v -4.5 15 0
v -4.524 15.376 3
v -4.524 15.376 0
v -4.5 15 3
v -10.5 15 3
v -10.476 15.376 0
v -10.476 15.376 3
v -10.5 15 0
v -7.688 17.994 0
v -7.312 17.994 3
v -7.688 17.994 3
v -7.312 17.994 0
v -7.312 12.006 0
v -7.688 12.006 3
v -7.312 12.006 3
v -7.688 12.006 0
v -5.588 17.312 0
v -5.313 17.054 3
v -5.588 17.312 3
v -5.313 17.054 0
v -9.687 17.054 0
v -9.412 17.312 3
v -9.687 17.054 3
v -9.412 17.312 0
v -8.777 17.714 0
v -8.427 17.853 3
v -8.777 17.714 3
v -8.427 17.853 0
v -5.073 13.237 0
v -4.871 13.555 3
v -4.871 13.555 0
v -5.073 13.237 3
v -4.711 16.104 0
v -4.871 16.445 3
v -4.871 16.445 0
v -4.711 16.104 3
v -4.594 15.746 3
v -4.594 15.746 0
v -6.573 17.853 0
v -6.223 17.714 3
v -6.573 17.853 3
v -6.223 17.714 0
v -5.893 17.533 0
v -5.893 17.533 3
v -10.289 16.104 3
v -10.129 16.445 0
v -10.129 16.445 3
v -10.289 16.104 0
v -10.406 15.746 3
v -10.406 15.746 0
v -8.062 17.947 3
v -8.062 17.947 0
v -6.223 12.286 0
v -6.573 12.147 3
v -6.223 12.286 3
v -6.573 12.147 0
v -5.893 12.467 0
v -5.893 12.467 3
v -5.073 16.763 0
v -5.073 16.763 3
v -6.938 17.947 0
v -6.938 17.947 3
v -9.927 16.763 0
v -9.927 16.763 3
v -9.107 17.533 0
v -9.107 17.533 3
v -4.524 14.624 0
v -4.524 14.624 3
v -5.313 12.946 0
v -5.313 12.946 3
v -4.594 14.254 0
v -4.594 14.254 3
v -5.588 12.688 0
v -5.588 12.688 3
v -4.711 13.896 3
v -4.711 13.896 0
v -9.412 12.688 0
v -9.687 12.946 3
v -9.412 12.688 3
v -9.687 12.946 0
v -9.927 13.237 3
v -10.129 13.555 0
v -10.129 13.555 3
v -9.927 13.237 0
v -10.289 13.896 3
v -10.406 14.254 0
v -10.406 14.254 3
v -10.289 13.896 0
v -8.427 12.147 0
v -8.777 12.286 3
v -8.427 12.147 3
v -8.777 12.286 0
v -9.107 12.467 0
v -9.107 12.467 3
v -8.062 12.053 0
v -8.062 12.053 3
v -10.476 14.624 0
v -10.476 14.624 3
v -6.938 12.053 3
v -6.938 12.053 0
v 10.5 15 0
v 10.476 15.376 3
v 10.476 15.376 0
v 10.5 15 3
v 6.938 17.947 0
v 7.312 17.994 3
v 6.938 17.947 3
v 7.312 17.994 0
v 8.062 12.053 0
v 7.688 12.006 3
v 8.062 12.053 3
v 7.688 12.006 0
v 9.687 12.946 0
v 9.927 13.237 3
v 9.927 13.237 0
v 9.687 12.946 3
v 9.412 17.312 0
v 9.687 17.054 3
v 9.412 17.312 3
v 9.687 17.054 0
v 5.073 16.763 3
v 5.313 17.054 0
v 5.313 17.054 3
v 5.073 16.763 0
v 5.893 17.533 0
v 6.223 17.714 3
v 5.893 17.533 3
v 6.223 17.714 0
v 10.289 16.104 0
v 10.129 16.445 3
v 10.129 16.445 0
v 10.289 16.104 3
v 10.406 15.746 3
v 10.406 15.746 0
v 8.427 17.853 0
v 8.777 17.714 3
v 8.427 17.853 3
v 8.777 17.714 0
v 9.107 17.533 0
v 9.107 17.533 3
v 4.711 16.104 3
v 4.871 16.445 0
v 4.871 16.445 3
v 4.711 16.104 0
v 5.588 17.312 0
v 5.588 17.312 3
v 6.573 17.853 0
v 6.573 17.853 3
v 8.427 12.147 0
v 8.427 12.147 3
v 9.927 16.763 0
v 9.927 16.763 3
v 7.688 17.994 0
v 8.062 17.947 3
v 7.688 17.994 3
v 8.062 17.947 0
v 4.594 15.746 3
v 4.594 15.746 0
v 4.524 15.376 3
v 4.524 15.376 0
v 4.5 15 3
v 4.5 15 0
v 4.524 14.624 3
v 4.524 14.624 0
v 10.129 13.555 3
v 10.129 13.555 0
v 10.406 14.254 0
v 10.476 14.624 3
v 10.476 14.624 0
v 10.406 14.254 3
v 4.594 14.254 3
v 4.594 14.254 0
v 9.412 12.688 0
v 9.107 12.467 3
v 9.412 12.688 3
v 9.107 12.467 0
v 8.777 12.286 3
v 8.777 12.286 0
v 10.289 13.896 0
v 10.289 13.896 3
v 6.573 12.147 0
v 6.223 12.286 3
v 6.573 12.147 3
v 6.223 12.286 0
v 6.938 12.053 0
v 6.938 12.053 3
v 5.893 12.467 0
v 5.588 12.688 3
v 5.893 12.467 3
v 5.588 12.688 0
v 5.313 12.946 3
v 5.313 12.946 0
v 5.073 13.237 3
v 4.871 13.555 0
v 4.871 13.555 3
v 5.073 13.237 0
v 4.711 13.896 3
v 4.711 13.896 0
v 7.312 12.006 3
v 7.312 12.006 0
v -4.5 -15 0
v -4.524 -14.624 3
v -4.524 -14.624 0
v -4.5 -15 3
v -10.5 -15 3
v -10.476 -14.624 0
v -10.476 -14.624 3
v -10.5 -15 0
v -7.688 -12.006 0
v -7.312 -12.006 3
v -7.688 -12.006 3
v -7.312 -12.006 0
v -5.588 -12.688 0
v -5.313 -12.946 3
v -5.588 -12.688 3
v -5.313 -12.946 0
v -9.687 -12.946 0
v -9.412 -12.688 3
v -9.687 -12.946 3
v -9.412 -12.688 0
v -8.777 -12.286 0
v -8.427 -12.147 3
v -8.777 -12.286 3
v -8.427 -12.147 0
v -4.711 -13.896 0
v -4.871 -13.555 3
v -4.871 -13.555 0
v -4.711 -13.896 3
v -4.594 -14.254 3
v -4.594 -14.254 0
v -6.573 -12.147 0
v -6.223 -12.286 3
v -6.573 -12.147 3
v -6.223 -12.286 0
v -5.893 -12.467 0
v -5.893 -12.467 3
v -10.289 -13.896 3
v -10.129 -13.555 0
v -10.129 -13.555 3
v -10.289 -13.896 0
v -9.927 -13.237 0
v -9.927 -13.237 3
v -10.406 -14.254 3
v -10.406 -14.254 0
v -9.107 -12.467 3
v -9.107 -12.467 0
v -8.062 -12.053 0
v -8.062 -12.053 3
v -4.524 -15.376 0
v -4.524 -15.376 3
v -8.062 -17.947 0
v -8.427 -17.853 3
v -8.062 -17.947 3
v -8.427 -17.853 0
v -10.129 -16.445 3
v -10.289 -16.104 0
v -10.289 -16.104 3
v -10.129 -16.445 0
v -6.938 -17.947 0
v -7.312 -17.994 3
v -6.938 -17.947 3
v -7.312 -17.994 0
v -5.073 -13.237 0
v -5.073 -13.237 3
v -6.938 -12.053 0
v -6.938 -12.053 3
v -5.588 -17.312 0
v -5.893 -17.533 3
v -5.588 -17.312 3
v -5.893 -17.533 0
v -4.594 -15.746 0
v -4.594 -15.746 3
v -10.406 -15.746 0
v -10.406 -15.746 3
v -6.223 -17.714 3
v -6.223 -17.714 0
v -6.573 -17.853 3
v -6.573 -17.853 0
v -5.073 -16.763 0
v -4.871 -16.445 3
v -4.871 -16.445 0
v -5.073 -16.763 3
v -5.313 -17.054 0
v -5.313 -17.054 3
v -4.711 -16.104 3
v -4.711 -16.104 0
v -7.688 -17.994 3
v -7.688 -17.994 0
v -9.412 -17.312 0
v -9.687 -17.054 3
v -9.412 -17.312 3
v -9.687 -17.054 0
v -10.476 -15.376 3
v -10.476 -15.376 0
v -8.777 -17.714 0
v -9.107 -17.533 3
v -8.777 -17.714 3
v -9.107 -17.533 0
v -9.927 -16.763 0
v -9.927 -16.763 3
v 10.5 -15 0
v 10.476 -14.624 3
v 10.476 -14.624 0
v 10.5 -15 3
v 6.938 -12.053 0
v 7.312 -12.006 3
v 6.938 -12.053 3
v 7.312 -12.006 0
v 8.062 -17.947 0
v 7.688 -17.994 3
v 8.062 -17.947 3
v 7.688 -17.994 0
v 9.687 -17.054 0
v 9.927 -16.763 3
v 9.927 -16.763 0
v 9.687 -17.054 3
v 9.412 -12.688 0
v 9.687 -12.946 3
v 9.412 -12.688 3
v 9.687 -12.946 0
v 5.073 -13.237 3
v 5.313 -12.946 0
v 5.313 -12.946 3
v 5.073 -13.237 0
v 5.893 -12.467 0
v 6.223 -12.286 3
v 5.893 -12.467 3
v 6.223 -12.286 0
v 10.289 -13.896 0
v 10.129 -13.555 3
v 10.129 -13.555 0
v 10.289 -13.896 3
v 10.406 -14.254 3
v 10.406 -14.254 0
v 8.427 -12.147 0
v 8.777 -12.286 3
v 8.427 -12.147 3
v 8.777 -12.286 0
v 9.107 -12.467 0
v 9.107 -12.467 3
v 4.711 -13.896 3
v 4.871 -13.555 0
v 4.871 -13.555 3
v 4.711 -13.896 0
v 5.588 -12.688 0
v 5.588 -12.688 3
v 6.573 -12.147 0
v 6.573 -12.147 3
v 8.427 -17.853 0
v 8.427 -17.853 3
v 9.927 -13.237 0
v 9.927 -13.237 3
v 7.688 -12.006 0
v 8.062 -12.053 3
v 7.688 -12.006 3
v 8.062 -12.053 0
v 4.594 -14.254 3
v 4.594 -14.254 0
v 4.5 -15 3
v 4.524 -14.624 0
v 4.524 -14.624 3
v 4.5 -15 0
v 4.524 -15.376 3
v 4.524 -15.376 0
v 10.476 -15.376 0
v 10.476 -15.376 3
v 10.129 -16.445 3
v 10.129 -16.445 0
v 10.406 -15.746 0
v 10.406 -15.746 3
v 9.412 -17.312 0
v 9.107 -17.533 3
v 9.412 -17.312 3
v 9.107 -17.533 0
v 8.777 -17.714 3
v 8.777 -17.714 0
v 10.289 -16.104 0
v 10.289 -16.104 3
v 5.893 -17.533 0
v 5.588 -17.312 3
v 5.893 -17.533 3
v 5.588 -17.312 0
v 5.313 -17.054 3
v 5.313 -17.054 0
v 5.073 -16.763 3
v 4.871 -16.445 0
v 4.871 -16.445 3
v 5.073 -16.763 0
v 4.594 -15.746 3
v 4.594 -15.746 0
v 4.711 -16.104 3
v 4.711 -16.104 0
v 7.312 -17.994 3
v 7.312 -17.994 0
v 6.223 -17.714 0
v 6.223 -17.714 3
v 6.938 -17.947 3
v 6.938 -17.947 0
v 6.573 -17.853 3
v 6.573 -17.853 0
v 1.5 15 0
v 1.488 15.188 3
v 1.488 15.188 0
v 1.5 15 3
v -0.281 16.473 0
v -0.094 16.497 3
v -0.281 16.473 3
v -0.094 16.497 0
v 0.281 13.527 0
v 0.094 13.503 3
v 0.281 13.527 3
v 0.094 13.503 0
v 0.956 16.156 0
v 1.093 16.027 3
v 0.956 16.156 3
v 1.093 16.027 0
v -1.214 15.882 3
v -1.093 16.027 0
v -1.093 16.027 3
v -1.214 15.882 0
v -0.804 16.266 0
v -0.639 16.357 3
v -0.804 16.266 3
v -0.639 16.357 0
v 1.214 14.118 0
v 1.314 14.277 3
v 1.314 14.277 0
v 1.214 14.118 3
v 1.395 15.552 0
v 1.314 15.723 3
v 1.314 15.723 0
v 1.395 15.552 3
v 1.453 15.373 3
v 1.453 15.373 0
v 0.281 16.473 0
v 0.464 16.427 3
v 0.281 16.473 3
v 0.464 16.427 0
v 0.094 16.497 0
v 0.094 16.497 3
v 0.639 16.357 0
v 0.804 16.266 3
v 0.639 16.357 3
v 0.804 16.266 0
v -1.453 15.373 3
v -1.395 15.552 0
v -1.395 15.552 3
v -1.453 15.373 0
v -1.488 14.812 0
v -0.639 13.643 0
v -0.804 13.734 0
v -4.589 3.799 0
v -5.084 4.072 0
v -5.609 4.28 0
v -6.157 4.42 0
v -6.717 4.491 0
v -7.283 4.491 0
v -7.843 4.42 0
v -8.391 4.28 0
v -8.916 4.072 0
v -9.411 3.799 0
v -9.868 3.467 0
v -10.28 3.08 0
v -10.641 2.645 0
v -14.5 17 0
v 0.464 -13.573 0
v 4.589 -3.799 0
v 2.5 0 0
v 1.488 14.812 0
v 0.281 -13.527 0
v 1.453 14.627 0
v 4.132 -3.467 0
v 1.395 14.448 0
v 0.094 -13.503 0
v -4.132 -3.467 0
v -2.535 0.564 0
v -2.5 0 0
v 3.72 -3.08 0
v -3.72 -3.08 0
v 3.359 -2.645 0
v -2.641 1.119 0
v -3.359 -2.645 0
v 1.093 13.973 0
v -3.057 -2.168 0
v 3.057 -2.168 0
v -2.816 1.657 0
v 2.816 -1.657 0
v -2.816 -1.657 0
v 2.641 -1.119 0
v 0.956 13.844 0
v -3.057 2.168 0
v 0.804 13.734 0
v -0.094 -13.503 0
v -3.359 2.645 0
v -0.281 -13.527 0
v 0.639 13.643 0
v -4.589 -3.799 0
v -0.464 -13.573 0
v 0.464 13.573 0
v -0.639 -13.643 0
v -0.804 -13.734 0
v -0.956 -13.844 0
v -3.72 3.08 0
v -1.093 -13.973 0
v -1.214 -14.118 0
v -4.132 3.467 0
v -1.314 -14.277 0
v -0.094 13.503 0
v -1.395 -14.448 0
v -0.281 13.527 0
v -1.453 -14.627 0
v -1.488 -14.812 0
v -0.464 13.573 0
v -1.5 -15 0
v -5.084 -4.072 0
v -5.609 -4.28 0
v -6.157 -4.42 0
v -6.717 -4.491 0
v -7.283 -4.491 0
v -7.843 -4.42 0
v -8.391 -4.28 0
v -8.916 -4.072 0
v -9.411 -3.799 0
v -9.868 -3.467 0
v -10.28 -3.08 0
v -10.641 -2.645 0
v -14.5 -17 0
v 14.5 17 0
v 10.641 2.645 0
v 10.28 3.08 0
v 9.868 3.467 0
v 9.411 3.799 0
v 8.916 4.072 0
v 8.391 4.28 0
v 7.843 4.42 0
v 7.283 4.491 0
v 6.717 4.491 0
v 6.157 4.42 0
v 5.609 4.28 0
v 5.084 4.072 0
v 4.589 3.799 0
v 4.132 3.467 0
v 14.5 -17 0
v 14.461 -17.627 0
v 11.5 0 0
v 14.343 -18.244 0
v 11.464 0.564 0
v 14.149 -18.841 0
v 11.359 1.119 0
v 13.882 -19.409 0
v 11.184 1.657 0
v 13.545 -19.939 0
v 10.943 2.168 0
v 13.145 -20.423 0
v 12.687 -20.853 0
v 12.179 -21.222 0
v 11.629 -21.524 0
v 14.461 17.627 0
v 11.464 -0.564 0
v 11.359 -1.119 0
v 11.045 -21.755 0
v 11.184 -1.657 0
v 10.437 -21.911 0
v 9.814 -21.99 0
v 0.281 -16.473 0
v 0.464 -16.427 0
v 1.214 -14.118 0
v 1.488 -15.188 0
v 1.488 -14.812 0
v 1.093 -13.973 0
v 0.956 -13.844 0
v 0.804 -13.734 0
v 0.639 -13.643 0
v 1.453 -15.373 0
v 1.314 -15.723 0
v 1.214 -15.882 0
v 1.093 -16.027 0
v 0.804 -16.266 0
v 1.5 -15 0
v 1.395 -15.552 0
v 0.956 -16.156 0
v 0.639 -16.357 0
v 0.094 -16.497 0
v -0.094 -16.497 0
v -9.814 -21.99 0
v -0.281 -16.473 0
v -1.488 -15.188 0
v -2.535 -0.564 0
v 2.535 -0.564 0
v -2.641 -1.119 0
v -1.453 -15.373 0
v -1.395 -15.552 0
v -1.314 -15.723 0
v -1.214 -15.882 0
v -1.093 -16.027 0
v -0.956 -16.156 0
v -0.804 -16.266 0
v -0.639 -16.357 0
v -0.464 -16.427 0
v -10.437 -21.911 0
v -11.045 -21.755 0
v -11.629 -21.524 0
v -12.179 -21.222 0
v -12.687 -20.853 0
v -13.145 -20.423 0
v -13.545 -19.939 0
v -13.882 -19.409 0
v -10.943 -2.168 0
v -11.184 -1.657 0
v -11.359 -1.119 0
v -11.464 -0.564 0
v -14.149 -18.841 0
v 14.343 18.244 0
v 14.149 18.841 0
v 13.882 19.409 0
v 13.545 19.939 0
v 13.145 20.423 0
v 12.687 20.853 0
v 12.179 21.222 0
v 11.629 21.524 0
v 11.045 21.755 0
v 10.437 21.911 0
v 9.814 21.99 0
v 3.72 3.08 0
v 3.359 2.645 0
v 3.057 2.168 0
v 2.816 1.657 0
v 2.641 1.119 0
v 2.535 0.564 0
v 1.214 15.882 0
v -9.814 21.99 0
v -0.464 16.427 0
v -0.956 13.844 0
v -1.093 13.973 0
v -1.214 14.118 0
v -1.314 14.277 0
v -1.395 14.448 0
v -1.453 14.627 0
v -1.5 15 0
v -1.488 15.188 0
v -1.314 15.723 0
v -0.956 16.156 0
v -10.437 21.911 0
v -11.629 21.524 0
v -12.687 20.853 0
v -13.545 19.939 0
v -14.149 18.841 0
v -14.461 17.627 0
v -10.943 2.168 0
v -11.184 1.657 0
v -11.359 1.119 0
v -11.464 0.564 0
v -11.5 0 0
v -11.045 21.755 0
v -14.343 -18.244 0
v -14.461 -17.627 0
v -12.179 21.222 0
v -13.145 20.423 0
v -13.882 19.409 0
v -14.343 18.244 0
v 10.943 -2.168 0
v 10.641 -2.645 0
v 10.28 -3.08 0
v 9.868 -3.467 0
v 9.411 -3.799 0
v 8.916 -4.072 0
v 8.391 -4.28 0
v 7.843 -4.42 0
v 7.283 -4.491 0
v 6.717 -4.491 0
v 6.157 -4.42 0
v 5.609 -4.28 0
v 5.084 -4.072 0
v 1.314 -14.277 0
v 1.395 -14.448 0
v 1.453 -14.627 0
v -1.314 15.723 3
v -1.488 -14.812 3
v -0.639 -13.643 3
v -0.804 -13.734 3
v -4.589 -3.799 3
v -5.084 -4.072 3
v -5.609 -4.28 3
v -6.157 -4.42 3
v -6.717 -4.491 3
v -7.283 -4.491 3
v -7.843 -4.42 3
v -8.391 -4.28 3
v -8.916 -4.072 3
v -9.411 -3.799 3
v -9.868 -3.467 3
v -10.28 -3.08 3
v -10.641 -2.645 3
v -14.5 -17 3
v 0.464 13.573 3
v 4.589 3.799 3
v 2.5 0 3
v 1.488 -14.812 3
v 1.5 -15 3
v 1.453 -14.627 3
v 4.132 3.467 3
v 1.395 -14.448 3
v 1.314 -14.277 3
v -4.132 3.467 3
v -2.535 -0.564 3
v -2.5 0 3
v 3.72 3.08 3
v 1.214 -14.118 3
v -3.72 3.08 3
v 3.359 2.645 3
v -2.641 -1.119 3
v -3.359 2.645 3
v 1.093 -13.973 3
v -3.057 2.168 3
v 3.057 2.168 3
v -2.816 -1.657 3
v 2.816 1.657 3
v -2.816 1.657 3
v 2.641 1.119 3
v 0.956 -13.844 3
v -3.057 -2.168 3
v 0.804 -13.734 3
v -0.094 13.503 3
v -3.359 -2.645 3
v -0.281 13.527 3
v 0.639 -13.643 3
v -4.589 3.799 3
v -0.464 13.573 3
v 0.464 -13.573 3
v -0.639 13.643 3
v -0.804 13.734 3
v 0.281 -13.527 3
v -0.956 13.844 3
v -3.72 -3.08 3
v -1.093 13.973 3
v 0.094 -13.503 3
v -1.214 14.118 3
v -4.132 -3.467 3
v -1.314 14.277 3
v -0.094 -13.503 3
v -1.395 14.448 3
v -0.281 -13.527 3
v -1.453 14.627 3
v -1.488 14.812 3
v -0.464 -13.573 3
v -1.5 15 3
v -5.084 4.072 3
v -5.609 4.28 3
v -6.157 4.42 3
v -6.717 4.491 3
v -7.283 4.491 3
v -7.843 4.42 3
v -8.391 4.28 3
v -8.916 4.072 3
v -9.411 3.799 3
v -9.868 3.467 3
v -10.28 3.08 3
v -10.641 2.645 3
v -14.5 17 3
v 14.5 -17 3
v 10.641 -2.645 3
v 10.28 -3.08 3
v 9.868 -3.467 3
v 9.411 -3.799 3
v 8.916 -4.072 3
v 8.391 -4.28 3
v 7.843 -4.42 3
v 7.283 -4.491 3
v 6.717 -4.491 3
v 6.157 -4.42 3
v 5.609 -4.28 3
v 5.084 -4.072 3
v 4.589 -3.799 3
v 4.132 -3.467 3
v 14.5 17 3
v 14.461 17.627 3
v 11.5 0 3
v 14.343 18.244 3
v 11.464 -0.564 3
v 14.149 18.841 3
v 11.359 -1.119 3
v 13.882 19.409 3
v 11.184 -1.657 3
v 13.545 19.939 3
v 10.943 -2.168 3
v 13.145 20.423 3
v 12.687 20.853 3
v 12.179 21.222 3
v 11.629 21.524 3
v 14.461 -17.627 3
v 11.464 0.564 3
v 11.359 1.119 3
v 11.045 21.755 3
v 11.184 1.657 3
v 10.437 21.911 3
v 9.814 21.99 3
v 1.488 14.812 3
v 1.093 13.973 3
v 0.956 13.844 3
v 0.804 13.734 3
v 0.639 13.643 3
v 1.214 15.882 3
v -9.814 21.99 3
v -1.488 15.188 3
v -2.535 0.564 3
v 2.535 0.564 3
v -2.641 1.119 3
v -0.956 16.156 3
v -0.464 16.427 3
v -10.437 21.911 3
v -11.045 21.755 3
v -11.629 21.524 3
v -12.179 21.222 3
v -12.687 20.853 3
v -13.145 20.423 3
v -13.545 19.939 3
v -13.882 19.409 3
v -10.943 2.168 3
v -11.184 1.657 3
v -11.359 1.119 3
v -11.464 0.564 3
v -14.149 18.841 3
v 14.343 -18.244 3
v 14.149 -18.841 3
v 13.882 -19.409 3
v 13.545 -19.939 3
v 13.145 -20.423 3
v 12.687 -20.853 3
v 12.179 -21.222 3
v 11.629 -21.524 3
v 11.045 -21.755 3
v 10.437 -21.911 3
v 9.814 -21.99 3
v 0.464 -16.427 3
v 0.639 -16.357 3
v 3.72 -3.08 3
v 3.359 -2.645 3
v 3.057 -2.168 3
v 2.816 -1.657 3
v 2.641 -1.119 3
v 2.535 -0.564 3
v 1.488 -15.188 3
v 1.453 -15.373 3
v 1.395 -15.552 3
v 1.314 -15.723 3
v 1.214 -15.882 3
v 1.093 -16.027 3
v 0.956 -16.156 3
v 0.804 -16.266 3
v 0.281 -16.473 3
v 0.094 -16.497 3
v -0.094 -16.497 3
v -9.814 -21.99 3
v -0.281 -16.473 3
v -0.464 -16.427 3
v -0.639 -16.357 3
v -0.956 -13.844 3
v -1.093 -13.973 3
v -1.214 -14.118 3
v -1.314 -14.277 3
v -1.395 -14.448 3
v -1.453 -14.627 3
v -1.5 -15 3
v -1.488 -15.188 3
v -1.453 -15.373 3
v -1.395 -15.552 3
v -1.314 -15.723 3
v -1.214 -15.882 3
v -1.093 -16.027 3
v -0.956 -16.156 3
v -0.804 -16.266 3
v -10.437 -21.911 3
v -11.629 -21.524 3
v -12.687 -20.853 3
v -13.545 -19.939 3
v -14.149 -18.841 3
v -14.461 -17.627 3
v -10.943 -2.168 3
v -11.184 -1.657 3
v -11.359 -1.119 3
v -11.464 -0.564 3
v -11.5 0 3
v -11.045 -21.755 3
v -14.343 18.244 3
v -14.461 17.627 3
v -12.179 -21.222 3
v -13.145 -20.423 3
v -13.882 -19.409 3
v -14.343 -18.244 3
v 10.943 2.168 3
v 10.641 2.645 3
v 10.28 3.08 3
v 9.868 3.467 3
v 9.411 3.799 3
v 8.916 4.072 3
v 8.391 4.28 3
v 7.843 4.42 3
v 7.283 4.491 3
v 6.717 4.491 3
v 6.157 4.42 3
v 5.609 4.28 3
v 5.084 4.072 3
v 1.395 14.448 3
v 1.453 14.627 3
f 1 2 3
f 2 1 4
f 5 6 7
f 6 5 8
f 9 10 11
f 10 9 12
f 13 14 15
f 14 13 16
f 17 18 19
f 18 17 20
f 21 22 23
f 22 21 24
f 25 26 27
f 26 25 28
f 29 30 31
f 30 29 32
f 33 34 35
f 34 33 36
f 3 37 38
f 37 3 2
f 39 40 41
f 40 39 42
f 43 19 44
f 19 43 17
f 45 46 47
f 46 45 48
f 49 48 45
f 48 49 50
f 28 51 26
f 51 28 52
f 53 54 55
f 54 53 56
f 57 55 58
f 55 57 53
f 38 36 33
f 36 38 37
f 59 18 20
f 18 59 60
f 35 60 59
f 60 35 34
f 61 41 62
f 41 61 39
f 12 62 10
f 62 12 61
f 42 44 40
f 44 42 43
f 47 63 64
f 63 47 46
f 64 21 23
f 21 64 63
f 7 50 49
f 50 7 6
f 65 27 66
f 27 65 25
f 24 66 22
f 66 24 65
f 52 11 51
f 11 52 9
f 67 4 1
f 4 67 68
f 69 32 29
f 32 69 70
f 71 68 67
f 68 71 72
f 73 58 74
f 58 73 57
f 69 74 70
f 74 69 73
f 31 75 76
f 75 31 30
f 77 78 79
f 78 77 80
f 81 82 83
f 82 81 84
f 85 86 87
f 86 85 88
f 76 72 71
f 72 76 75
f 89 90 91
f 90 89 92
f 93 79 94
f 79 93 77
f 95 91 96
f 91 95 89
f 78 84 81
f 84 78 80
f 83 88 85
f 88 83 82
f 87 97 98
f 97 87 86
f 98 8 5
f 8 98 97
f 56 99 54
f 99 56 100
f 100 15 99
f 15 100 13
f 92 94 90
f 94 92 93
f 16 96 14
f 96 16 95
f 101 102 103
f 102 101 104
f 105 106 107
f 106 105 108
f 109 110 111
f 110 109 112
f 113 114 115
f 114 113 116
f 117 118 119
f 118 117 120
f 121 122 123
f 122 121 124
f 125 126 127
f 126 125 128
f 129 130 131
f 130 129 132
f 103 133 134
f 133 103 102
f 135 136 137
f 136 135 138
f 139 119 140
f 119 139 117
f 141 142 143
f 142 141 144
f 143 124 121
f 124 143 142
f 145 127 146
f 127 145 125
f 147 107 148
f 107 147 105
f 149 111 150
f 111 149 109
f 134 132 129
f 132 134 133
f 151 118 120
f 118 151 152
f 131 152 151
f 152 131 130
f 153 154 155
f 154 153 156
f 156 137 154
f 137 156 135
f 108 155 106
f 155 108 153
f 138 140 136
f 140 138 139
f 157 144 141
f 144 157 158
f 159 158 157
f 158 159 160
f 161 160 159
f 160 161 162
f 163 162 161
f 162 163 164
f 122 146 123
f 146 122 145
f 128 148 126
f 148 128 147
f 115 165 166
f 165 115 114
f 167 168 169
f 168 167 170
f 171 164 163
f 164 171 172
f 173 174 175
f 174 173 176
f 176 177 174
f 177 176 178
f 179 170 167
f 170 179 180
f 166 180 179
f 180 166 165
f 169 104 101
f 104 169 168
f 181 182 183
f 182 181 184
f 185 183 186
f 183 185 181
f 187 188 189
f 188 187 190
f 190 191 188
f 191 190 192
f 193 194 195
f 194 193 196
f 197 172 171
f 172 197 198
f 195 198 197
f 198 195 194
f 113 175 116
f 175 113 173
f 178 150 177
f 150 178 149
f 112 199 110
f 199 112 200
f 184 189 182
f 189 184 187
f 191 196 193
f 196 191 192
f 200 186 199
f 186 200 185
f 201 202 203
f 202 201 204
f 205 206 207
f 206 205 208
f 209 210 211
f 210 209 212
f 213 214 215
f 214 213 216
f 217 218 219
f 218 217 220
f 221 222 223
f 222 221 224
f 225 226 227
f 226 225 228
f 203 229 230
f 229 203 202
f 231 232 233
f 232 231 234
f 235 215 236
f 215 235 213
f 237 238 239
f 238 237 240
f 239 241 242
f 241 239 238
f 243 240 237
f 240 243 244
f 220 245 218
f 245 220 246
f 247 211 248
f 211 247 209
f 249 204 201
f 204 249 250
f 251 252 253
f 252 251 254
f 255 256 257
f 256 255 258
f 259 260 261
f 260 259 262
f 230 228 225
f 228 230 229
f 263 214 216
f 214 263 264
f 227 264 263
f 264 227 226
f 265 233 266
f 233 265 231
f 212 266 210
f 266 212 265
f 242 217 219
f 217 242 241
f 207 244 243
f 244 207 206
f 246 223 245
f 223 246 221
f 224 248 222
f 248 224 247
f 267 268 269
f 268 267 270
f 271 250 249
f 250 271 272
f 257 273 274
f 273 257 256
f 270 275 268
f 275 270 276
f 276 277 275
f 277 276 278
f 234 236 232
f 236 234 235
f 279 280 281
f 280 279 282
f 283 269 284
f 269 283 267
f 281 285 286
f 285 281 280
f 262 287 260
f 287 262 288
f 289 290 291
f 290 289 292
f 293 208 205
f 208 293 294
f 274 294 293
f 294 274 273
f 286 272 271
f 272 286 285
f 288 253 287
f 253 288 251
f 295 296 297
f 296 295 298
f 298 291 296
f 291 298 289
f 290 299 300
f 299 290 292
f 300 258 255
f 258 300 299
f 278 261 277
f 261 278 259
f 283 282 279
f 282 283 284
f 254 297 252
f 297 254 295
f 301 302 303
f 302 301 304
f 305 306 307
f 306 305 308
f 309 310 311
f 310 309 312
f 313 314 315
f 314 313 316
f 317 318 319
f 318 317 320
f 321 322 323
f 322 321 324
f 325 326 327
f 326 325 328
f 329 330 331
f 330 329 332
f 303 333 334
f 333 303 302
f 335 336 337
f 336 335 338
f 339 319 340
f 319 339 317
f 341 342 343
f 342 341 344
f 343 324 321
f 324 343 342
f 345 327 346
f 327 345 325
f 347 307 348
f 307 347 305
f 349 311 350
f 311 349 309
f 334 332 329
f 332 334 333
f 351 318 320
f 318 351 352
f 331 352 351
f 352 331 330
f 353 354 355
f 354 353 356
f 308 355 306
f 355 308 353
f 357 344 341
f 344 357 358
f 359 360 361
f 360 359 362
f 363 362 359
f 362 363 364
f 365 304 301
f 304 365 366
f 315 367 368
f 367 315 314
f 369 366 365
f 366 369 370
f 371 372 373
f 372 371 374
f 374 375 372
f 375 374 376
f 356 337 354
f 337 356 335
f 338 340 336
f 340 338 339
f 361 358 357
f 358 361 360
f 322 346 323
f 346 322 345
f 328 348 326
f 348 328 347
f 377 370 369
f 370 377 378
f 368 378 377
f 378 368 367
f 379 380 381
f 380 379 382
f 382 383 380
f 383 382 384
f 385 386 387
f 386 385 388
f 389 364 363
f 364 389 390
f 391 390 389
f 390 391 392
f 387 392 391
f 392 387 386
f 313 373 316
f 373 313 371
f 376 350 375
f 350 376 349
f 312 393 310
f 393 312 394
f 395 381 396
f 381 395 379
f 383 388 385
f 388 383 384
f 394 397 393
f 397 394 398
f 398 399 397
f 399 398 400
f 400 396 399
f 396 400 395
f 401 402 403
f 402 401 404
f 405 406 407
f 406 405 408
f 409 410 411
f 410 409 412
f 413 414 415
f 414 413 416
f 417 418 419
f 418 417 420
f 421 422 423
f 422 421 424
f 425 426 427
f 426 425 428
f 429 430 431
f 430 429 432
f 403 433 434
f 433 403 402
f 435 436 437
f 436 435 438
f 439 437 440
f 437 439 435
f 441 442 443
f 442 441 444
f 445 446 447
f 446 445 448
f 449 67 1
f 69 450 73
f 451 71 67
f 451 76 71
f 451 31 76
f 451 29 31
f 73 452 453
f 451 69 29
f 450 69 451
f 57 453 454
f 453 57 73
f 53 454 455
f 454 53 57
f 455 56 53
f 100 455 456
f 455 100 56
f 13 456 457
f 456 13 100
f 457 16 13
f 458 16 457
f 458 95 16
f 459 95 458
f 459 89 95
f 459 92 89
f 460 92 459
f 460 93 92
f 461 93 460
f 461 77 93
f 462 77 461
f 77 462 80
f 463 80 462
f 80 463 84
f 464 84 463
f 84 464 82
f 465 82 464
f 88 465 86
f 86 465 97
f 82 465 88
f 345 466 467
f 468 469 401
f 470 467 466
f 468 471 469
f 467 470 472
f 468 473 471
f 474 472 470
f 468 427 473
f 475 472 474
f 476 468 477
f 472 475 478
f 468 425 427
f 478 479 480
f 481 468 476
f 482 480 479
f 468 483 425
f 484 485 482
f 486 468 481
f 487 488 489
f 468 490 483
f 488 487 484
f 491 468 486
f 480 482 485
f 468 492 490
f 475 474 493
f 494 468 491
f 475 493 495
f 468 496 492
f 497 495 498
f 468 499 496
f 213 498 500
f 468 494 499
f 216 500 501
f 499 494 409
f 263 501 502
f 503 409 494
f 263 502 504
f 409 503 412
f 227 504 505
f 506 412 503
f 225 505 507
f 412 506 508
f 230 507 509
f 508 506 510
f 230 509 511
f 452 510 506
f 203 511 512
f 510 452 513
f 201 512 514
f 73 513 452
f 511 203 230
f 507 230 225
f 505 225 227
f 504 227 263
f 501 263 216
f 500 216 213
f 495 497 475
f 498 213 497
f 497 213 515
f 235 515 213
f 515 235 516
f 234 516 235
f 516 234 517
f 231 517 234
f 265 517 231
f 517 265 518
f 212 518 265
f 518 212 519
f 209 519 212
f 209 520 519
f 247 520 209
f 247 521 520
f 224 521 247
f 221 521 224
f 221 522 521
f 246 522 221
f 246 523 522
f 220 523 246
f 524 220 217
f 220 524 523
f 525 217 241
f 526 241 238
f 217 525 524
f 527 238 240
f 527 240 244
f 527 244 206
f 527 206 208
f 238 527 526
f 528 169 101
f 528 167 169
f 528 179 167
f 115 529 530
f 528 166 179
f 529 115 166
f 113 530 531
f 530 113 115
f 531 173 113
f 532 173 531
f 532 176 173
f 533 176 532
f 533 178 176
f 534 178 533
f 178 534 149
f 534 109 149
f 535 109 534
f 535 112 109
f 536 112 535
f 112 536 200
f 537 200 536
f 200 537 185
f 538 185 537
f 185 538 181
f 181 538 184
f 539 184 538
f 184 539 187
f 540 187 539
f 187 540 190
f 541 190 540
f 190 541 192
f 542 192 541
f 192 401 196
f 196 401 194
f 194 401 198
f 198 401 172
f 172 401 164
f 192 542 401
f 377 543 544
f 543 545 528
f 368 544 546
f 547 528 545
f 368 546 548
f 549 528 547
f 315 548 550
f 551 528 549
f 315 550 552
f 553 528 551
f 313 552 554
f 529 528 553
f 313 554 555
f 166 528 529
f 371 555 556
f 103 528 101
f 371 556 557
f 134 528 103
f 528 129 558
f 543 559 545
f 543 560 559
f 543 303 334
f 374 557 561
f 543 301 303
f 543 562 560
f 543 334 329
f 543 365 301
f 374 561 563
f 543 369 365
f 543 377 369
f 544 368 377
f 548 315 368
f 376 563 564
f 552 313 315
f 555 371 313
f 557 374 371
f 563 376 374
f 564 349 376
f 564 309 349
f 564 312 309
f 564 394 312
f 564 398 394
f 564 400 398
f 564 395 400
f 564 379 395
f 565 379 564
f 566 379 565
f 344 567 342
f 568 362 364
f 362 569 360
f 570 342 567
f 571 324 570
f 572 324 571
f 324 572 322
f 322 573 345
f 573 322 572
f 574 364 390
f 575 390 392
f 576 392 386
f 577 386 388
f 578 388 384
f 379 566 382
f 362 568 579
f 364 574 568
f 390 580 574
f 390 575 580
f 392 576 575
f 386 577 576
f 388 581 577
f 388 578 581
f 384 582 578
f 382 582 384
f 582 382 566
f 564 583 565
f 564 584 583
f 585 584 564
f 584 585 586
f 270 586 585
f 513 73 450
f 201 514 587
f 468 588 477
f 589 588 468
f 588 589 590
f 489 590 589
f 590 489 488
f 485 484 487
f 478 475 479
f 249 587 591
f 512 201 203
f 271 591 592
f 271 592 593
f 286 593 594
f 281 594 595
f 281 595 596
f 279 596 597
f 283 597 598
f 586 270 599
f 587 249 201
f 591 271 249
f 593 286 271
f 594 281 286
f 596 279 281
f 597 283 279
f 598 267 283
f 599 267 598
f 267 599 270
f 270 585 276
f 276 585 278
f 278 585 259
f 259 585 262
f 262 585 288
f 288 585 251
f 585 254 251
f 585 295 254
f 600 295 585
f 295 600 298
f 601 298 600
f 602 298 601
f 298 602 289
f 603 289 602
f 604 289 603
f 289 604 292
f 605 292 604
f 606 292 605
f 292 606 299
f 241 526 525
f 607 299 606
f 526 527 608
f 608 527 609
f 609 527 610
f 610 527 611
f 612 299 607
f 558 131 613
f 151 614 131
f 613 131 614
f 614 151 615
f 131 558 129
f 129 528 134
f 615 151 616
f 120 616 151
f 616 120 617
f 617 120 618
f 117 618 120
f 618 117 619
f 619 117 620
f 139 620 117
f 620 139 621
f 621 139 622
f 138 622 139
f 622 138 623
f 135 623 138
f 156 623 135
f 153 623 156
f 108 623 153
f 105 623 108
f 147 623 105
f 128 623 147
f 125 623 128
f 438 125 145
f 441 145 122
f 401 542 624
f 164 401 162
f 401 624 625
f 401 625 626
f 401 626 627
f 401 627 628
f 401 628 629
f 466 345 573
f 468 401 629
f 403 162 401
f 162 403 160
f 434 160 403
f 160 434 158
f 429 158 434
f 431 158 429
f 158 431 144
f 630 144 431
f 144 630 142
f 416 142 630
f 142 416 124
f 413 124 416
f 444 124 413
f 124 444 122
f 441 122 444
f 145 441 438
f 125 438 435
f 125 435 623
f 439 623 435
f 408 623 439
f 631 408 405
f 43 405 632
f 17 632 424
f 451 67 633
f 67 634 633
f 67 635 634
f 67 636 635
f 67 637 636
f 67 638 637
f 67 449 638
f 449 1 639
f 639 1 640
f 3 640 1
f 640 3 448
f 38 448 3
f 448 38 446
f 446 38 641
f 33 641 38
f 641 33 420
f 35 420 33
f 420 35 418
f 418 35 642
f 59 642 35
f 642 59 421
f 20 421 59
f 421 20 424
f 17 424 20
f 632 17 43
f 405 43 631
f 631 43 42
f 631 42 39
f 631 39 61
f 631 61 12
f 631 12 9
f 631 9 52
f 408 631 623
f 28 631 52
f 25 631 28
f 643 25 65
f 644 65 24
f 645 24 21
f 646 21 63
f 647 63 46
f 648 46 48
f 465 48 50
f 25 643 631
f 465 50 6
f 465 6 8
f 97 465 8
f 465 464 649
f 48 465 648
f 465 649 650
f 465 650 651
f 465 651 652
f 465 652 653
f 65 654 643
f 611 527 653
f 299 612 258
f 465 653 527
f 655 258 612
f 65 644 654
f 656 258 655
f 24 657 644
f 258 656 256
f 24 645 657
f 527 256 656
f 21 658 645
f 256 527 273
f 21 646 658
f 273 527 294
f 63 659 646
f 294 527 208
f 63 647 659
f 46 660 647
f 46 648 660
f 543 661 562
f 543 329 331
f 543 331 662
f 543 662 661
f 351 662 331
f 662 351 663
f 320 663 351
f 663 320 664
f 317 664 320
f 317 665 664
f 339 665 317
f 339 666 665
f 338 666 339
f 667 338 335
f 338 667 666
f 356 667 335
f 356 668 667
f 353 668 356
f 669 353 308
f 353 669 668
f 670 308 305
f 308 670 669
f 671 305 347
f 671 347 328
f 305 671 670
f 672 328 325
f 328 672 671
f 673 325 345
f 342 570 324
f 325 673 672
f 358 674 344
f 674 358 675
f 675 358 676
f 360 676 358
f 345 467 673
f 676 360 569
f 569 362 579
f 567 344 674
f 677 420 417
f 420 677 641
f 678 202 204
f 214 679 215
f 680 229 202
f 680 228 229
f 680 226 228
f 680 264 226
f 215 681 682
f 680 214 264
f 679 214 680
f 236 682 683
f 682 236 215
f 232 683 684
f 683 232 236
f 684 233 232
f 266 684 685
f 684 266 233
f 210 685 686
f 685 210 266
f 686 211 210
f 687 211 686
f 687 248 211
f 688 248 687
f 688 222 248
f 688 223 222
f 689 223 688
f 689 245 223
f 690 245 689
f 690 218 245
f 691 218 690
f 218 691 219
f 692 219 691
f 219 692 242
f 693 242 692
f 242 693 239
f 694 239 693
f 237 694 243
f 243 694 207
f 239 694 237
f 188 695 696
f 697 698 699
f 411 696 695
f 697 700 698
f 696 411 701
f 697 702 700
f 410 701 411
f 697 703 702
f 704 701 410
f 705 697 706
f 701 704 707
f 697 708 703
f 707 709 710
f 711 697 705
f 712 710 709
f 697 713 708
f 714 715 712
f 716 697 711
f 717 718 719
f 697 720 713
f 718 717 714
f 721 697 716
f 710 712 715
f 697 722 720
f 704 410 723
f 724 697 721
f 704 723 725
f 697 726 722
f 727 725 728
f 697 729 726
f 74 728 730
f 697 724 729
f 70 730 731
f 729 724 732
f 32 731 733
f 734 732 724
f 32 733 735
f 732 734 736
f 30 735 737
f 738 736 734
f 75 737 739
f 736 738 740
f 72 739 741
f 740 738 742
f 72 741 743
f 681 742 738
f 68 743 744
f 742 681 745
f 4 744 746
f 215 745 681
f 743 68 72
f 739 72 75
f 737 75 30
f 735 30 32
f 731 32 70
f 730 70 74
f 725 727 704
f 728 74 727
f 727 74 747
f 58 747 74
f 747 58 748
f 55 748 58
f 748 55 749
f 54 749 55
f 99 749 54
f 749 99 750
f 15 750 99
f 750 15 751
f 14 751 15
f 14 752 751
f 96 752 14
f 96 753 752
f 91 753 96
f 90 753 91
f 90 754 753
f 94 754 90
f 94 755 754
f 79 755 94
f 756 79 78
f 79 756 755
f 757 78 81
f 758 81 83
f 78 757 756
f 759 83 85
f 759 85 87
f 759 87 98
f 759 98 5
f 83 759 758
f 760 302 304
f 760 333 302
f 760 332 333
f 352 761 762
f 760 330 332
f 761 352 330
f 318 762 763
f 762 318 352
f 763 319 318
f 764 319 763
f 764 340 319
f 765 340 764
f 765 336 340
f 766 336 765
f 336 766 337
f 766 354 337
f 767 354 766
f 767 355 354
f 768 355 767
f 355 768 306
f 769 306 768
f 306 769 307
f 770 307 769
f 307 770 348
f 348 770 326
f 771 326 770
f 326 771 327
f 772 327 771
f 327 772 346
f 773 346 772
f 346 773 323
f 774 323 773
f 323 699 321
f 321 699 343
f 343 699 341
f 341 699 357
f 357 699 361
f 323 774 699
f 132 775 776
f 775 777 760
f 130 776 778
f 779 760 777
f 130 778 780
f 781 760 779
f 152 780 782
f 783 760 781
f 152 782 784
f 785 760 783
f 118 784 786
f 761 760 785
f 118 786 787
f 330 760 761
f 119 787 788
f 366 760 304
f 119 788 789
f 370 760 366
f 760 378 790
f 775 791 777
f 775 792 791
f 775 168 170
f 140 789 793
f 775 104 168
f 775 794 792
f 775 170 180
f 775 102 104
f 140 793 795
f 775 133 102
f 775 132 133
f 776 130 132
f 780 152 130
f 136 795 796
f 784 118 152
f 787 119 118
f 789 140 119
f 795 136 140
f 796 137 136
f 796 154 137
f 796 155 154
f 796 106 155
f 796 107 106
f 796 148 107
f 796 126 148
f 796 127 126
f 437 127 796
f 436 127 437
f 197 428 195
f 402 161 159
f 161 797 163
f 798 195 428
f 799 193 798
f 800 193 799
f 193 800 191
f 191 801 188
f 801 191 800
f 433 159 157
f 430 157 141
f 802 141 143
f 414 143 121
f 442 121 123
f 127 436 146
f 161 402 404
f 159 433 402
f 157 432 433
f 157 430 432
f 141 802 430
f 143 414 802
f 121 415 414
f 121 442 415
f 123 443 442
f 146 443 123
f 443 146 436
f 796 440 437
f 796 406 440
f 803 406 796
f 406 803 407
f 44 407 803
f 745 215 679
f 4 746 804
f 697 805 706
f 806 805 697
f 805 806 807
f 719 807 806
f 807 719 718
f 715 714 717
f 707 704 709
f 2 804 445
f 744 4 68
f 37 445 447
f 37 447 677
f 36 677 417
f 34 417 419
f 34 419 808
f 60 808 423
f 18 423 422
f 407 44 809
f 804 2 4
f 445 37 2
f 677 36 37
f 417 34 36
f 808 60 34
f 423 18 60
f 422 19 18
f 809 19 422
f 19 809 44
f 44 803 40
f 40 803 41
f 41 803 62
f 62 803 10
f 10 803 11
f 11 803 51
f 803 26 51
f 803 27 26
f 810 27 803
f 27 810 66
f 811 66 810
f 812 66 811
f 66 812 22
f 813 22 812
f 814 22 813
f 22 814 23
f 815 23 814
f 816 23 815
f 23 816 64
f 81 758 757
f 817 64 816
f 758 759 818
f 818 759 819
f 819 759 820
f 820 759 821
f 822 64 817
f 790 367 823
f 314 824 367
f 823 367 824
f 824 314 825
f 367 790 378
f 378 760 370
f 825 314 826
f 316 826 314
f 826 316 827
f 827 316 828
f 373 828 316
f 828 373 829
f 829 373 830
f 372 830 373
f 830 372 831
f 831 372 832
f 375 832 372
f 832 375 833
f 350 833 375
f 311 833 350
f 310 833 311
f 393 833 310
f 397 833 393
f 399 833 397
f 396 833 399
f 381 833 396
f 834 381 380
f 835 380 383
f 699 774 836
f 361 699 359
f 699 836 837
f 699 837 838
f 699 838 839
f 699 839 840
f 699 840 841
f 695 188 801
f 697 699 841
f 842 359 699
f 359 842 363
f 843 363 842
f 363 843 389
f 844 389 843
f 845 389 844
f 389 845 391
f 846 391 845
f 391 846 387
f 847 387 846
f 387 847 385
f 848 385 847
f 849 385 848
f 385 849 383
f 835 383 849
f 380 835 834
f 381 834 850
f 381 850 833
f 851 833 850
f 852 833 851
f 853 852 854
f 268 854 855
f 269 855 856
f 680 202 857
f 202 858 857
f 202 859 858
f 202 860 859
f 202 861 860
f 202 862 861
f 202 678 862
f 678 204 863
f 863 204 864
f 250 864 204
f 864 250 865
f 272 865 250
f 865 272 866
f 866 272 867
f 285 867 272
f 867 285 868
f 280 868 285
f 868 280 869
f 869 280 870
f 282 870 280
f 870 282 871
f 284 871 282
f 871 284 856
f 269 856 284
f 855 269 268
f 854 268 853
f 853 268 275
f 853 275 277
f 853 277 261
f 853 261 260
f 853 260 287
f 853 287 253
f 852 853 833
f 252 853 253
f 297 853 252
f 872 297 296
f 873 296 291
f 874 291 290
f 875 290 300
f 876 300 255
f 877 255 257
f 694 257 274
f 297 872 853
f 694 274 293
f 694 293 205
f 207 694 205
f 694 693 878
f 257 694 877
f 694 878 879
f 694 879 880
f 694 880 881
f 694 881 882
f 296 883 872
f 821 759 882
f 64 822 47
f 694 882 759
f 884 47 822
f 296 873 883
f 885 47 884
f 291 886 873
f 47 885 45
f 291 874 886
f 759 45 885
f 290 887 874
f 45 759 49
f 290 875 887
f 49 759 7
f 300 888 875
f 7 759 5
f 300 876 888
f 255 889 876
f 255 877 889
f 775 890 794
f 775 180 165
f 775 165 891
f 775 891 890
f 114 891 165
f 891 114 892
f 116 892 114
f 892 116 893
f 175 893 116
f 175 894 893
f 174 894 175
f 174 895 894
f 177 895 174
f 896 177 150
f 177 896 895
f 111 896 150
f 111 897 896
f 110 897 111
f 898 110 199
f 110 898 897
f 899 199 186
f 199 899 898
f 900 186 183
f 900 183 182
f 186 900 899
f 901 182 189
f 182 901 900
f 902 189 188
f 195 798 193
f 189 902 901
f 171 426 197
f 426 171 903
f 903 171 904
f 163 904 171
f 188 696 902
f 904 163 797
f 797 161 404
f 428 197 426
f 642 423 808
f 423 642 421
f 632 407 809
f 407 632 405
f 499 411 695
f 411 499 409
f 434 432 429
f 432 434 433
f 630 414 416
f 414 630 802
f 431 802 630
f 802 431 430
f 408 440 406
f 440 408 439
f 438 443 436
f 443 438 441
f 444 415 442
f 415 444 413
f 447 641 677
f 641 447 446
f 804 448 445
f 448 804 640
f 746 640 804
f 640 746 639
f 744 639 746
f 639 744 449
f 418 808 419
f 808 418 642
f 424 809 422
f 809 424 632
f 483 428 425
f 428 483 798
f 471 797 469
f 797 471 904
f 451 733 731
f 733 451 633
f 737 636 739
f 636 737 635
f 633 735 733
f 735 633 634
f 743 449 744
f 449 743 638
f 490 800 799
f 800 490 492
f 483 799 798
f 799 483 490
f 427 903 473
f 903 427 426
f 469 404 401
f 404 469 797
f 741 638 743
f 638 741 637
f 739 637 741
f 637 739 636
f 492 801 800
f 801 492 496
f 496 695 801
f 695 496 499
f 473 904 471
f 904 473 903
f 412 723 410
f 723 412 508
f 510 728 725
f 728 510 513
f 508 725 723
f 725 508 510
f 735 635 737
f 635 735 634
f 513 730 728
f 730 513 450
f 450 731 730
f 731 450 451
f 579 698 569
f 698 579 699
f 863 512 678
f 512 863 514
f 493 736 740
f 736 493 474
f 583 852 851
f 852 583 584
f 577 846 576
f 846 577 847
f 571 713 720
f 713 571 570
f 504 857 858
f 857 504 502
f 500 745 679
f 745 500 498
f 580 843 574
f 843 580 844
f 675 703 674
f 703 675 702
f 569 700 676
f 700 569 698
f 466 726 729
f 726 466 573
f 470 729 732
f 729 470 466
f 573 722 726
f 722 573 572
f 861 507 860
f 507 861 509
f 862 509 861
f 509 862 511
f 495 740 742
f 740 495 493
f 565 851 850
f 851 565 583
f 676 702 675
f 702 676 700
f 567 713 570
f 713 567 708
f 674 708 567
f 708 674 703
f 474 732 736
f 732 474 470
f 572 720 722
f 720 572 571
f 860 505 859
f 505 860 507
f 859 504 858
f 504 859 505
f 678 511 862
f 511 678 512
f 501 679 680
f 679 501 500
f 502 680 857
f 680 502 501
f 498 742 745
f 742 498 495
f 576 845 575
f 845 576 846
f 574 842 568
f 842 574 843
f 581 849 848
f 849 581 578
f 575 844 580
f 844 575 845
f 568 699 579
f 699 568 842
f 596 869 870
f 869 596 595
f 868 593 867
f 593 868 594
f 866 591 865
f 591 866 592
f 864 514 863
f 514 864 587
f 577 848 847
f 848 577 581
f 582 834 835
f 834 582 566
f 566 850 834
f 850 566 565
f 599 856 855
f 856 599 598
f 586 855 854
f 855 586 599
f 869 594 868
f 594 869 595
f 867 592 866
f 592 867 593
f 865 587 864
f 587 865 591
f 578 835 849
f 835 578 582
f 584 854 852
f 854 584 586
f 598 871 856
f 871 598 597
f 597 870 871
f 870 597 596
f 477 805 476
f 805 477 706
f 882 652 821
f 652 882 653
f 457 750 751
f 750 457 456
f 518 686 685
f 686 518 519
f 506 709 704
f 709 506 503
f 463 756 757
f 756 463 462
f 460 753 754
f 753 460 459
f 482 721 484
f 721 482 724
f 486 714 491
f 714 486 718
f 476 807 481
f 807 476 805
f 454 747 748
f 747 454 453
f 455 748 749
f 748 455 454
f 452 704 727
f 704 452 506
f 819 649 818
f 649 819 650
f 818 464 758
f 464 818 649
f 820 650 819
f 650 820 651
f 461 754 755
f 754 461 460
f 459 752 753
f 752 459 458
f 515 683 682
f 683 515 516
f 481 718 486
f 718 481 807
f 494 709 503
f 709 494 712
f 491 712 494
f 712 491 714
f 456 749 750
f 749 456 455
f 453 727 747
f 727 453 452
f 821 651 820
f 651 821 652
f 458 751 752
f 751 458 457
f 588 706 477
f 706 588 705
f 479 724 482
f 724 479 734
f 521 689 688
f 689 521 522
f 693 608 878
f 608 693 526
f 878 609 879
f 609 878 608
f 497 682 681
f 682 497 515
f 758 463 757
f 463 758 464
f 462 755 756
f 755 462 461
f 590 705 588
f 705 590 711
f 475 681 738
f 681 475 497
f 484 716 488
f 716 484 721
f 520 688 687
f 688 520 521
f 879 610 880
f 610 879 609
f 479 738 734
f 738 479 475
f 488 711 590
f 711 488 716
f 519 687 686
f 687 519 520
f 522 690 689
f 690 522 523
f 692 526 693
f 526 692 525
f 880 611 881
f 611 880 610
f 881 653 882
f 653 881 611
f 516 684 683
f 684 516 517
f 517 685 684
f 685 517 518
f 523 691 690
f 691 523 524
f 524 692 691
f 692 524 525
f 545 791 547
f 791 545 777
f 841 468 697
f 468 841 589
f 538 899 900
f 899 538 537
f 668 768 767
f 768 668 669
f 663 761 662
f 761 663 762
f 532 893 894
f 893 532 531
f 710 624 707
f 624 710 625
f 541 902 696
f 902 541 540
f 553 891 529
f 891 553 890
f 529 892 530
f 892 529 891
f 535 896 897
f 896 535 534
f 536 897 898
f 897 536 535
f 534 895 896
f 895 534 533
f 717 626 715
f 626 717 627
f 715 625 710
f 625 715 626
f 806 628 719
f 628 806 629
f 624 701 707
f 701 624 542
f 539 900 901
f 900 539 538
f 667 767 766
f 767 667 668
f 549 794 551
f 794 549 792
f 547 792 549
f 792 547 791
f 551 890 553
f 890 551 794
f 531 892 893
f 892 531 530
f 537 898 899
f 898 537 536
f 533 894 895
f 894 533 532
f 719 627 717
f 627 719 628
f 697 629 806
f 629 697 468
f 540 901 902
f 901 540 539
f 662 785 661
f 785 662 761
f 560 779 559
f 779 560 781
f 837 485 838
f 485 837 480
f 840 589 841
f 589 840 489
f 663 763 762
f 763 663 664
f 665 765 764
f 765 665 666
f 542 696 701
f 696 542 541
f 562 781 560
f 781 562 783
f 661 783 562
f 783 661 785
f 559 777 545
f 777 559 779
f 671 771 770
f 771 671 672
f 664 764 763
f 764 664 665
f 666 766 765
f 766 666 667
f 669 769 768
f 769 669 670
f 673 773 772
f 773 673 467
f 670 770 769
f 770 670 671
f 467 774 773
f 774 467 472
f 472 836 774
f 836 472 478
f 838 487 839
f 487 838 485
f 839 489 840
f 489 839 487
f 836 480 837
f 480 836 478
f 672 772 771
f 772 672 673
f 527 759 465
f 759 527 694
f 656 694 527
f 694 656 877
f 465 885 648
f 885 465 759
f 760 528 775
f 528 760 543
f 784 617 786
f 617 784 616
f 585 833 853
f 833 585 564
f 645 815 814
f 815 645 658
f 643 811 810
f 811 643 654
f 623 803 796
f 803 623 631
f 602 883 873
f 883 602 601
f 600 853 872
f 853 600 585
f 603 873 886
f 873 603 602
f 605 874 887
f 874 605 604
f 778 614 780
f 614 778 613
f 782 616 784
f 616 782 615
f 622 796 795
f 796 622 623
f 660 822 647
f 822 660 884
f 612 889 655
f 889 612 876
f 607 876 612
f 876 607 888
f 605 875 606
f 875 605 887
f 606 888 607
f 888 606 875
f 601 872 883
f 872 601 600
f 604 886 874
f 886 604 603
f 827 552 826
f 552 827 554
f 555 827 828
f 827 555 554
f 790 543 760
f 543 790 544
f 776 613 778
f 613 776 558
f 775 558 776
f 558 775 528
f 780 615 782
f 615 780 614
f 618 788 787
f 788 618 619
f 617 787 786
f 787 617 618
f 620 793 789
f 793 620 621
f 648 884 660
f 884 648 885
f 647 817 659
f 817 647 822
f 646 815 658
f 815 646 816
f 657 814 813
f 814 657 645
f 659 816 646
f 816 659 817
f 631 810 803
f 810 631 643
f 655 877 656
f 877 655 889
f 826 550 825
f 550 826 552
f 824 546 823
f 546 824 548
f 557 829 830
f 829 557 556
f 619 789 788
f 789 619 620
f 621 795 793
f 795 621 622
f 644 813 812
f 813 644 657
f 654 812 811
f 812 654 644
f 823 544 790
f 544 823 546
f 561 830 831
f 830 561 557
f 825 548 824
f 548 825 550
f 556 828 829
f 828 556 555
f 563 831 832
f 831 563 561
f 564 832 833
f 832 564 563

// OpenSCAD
$fn = 50;


difference() {
	union() {
		hull() {
			translate(v = [-9.5000000000, 17.0000000000, 0]) {
				cylinder(h = 3, r = 5);
			}
			translate(v = [9.5000000000, 17.0000000000, 0]) {
				cylinder(h = 3, r = 5);
			}
			translate(v = [-9.5000000000, -17.0000000000, 0]) {
				cylinder(h = 3, r = 5);
			}
			translate(v = [9.5000000000, -17.0000000000, 0]) {
				cylinder(h = 3, r = 5);
			}
		}
	}
	union() {
		#translate(v = [-7.5000000000, 15.0000000000, 0]) {
			cylinder(h = 3, r = 3.0000000000);
		}
		#translate(v = [7.5000000000, 15.0000000000, 0]) {
			cylinder(h = 3, r = 3.0000000000);
		}
		#translate(v = [-7.5000000000, -15.0000000000, 0]) {
			cylinder(h = 3, r = 3.0000000000);
		}
		#translate(v = [7.5000000000, -15.0000000000, 0]) {
			cylinder(h = 3, r = 3.0000000000);
		}
		#translate(v = [-7.5000000000, -15.0000000000, -100.0000000000]) {
			cylinder(h = 200, r = 3.0000000000);
		}
		#translate(v = [-7.5000000000, 15.0000000000, -100.0000000000]) {
			cylinder(h = 200, r = 3.0000000000);
		}
		#translate(v = [7.5000000000, -15.0000000000, -100.0000000000]) {
			cylinder(h = 200, r = 3.0000000000);
		}
		#translate(v = [7.5000000000, 15.0000000000, -100.0000000000]) {
			cylinder(h = 200, r = 3.0000000000);
		}
		#translate(v = [-7.5000000000, 15.0000000000, 0]) {
			cylinder(h = 3, r = 1.5000000000);
		}
		#translate(v = [0.0000000000, 15.0000000000, 0]) {
			cylinder(h = 3, r = 1.5000000000);
		}
		#translate(v = [7.5000000000, 15.0000000000, 0]) {
			cylinder(h = 3, r = 1.5000000000);
		}
		#translate(v = [-7.5000000000, -15.0000000000, 0]) {
			cylinder(h = 3, r = 1.5000000000);
		}
		#translate(v = [0.0000000000, -15.0000000000, 0]) {
			cylinder(h = 3, r = 1.5000000000);
		}
		#translate(v = [7.5000000000, -15.0000000000, 0]) {
			cylinder(h = 3, r = 1.5000000000);
		}
		#translate(v = [-7.5000000000, 15.0000000000, 0]) {
			cylinder(h = 3, r = 1.5000000000);
		}
		#translate(v = [0.0000000000, 15.0000000000, 0]) {
			cylinder(h = 3, r = 1.5000000000);
		}
		#translate(v = [7.5000000000, 15.0000000000, 0]) {
			cylinder(h = 3, r = 1.5000000000);
		}
		#translate(v = [-7.5000000000, -15.0000000000, 0]) {
			cylinder(h = 3, r = 1.5000000000);
		}
		#translate(v = [0.0000000000, -15.0000000000, 0]) {
			cylinder(h = 3, r = 1.5000000000);
		}
		#translate(v = [7.5000000000, -15.0000000000, 0]) {
			cylinder(h = 3, r = 1.5000000000);
		}
		#translate(v = [-7.5000000000, 15.0000000000, 0]) {
			cylinder(h = 3, r = 1.5000000000);
		}
		#translate(v = [0.0000000000, 15.0000000000, 0]) {
			cylinder(h = 3, r = 1.5000000000);
		}
		#translate(v = [7.5000000000, 15.0000000000, 0]) {
			cylinder(h = 3, r = 1.5000000000);
		}
		#translate(v = [-7.5000000000, -15.0000000000, 0]) {
			cylinder(h = 3, r = 1.5000000000);
		}
		#translate(v = [0.0000000000, -15.0000000000, 0]) {
			cylinder(h = 3, r = 1.5000000000);
		}
		#translate(v = [7.5000000000, -15.0000000000, 0]) {
			cylinder(h = 3, r = 1.5000000000);
		}
		#translate(v = [-7.0000000000, 0, 0]) {
			cylinder(h = 3, r = 4.5000000000);
		}
		#translate(v = [7.0000000000, 0, 0]) {
			cylinder(h = 3, r = 4.5000000000);
		}
	}
}
